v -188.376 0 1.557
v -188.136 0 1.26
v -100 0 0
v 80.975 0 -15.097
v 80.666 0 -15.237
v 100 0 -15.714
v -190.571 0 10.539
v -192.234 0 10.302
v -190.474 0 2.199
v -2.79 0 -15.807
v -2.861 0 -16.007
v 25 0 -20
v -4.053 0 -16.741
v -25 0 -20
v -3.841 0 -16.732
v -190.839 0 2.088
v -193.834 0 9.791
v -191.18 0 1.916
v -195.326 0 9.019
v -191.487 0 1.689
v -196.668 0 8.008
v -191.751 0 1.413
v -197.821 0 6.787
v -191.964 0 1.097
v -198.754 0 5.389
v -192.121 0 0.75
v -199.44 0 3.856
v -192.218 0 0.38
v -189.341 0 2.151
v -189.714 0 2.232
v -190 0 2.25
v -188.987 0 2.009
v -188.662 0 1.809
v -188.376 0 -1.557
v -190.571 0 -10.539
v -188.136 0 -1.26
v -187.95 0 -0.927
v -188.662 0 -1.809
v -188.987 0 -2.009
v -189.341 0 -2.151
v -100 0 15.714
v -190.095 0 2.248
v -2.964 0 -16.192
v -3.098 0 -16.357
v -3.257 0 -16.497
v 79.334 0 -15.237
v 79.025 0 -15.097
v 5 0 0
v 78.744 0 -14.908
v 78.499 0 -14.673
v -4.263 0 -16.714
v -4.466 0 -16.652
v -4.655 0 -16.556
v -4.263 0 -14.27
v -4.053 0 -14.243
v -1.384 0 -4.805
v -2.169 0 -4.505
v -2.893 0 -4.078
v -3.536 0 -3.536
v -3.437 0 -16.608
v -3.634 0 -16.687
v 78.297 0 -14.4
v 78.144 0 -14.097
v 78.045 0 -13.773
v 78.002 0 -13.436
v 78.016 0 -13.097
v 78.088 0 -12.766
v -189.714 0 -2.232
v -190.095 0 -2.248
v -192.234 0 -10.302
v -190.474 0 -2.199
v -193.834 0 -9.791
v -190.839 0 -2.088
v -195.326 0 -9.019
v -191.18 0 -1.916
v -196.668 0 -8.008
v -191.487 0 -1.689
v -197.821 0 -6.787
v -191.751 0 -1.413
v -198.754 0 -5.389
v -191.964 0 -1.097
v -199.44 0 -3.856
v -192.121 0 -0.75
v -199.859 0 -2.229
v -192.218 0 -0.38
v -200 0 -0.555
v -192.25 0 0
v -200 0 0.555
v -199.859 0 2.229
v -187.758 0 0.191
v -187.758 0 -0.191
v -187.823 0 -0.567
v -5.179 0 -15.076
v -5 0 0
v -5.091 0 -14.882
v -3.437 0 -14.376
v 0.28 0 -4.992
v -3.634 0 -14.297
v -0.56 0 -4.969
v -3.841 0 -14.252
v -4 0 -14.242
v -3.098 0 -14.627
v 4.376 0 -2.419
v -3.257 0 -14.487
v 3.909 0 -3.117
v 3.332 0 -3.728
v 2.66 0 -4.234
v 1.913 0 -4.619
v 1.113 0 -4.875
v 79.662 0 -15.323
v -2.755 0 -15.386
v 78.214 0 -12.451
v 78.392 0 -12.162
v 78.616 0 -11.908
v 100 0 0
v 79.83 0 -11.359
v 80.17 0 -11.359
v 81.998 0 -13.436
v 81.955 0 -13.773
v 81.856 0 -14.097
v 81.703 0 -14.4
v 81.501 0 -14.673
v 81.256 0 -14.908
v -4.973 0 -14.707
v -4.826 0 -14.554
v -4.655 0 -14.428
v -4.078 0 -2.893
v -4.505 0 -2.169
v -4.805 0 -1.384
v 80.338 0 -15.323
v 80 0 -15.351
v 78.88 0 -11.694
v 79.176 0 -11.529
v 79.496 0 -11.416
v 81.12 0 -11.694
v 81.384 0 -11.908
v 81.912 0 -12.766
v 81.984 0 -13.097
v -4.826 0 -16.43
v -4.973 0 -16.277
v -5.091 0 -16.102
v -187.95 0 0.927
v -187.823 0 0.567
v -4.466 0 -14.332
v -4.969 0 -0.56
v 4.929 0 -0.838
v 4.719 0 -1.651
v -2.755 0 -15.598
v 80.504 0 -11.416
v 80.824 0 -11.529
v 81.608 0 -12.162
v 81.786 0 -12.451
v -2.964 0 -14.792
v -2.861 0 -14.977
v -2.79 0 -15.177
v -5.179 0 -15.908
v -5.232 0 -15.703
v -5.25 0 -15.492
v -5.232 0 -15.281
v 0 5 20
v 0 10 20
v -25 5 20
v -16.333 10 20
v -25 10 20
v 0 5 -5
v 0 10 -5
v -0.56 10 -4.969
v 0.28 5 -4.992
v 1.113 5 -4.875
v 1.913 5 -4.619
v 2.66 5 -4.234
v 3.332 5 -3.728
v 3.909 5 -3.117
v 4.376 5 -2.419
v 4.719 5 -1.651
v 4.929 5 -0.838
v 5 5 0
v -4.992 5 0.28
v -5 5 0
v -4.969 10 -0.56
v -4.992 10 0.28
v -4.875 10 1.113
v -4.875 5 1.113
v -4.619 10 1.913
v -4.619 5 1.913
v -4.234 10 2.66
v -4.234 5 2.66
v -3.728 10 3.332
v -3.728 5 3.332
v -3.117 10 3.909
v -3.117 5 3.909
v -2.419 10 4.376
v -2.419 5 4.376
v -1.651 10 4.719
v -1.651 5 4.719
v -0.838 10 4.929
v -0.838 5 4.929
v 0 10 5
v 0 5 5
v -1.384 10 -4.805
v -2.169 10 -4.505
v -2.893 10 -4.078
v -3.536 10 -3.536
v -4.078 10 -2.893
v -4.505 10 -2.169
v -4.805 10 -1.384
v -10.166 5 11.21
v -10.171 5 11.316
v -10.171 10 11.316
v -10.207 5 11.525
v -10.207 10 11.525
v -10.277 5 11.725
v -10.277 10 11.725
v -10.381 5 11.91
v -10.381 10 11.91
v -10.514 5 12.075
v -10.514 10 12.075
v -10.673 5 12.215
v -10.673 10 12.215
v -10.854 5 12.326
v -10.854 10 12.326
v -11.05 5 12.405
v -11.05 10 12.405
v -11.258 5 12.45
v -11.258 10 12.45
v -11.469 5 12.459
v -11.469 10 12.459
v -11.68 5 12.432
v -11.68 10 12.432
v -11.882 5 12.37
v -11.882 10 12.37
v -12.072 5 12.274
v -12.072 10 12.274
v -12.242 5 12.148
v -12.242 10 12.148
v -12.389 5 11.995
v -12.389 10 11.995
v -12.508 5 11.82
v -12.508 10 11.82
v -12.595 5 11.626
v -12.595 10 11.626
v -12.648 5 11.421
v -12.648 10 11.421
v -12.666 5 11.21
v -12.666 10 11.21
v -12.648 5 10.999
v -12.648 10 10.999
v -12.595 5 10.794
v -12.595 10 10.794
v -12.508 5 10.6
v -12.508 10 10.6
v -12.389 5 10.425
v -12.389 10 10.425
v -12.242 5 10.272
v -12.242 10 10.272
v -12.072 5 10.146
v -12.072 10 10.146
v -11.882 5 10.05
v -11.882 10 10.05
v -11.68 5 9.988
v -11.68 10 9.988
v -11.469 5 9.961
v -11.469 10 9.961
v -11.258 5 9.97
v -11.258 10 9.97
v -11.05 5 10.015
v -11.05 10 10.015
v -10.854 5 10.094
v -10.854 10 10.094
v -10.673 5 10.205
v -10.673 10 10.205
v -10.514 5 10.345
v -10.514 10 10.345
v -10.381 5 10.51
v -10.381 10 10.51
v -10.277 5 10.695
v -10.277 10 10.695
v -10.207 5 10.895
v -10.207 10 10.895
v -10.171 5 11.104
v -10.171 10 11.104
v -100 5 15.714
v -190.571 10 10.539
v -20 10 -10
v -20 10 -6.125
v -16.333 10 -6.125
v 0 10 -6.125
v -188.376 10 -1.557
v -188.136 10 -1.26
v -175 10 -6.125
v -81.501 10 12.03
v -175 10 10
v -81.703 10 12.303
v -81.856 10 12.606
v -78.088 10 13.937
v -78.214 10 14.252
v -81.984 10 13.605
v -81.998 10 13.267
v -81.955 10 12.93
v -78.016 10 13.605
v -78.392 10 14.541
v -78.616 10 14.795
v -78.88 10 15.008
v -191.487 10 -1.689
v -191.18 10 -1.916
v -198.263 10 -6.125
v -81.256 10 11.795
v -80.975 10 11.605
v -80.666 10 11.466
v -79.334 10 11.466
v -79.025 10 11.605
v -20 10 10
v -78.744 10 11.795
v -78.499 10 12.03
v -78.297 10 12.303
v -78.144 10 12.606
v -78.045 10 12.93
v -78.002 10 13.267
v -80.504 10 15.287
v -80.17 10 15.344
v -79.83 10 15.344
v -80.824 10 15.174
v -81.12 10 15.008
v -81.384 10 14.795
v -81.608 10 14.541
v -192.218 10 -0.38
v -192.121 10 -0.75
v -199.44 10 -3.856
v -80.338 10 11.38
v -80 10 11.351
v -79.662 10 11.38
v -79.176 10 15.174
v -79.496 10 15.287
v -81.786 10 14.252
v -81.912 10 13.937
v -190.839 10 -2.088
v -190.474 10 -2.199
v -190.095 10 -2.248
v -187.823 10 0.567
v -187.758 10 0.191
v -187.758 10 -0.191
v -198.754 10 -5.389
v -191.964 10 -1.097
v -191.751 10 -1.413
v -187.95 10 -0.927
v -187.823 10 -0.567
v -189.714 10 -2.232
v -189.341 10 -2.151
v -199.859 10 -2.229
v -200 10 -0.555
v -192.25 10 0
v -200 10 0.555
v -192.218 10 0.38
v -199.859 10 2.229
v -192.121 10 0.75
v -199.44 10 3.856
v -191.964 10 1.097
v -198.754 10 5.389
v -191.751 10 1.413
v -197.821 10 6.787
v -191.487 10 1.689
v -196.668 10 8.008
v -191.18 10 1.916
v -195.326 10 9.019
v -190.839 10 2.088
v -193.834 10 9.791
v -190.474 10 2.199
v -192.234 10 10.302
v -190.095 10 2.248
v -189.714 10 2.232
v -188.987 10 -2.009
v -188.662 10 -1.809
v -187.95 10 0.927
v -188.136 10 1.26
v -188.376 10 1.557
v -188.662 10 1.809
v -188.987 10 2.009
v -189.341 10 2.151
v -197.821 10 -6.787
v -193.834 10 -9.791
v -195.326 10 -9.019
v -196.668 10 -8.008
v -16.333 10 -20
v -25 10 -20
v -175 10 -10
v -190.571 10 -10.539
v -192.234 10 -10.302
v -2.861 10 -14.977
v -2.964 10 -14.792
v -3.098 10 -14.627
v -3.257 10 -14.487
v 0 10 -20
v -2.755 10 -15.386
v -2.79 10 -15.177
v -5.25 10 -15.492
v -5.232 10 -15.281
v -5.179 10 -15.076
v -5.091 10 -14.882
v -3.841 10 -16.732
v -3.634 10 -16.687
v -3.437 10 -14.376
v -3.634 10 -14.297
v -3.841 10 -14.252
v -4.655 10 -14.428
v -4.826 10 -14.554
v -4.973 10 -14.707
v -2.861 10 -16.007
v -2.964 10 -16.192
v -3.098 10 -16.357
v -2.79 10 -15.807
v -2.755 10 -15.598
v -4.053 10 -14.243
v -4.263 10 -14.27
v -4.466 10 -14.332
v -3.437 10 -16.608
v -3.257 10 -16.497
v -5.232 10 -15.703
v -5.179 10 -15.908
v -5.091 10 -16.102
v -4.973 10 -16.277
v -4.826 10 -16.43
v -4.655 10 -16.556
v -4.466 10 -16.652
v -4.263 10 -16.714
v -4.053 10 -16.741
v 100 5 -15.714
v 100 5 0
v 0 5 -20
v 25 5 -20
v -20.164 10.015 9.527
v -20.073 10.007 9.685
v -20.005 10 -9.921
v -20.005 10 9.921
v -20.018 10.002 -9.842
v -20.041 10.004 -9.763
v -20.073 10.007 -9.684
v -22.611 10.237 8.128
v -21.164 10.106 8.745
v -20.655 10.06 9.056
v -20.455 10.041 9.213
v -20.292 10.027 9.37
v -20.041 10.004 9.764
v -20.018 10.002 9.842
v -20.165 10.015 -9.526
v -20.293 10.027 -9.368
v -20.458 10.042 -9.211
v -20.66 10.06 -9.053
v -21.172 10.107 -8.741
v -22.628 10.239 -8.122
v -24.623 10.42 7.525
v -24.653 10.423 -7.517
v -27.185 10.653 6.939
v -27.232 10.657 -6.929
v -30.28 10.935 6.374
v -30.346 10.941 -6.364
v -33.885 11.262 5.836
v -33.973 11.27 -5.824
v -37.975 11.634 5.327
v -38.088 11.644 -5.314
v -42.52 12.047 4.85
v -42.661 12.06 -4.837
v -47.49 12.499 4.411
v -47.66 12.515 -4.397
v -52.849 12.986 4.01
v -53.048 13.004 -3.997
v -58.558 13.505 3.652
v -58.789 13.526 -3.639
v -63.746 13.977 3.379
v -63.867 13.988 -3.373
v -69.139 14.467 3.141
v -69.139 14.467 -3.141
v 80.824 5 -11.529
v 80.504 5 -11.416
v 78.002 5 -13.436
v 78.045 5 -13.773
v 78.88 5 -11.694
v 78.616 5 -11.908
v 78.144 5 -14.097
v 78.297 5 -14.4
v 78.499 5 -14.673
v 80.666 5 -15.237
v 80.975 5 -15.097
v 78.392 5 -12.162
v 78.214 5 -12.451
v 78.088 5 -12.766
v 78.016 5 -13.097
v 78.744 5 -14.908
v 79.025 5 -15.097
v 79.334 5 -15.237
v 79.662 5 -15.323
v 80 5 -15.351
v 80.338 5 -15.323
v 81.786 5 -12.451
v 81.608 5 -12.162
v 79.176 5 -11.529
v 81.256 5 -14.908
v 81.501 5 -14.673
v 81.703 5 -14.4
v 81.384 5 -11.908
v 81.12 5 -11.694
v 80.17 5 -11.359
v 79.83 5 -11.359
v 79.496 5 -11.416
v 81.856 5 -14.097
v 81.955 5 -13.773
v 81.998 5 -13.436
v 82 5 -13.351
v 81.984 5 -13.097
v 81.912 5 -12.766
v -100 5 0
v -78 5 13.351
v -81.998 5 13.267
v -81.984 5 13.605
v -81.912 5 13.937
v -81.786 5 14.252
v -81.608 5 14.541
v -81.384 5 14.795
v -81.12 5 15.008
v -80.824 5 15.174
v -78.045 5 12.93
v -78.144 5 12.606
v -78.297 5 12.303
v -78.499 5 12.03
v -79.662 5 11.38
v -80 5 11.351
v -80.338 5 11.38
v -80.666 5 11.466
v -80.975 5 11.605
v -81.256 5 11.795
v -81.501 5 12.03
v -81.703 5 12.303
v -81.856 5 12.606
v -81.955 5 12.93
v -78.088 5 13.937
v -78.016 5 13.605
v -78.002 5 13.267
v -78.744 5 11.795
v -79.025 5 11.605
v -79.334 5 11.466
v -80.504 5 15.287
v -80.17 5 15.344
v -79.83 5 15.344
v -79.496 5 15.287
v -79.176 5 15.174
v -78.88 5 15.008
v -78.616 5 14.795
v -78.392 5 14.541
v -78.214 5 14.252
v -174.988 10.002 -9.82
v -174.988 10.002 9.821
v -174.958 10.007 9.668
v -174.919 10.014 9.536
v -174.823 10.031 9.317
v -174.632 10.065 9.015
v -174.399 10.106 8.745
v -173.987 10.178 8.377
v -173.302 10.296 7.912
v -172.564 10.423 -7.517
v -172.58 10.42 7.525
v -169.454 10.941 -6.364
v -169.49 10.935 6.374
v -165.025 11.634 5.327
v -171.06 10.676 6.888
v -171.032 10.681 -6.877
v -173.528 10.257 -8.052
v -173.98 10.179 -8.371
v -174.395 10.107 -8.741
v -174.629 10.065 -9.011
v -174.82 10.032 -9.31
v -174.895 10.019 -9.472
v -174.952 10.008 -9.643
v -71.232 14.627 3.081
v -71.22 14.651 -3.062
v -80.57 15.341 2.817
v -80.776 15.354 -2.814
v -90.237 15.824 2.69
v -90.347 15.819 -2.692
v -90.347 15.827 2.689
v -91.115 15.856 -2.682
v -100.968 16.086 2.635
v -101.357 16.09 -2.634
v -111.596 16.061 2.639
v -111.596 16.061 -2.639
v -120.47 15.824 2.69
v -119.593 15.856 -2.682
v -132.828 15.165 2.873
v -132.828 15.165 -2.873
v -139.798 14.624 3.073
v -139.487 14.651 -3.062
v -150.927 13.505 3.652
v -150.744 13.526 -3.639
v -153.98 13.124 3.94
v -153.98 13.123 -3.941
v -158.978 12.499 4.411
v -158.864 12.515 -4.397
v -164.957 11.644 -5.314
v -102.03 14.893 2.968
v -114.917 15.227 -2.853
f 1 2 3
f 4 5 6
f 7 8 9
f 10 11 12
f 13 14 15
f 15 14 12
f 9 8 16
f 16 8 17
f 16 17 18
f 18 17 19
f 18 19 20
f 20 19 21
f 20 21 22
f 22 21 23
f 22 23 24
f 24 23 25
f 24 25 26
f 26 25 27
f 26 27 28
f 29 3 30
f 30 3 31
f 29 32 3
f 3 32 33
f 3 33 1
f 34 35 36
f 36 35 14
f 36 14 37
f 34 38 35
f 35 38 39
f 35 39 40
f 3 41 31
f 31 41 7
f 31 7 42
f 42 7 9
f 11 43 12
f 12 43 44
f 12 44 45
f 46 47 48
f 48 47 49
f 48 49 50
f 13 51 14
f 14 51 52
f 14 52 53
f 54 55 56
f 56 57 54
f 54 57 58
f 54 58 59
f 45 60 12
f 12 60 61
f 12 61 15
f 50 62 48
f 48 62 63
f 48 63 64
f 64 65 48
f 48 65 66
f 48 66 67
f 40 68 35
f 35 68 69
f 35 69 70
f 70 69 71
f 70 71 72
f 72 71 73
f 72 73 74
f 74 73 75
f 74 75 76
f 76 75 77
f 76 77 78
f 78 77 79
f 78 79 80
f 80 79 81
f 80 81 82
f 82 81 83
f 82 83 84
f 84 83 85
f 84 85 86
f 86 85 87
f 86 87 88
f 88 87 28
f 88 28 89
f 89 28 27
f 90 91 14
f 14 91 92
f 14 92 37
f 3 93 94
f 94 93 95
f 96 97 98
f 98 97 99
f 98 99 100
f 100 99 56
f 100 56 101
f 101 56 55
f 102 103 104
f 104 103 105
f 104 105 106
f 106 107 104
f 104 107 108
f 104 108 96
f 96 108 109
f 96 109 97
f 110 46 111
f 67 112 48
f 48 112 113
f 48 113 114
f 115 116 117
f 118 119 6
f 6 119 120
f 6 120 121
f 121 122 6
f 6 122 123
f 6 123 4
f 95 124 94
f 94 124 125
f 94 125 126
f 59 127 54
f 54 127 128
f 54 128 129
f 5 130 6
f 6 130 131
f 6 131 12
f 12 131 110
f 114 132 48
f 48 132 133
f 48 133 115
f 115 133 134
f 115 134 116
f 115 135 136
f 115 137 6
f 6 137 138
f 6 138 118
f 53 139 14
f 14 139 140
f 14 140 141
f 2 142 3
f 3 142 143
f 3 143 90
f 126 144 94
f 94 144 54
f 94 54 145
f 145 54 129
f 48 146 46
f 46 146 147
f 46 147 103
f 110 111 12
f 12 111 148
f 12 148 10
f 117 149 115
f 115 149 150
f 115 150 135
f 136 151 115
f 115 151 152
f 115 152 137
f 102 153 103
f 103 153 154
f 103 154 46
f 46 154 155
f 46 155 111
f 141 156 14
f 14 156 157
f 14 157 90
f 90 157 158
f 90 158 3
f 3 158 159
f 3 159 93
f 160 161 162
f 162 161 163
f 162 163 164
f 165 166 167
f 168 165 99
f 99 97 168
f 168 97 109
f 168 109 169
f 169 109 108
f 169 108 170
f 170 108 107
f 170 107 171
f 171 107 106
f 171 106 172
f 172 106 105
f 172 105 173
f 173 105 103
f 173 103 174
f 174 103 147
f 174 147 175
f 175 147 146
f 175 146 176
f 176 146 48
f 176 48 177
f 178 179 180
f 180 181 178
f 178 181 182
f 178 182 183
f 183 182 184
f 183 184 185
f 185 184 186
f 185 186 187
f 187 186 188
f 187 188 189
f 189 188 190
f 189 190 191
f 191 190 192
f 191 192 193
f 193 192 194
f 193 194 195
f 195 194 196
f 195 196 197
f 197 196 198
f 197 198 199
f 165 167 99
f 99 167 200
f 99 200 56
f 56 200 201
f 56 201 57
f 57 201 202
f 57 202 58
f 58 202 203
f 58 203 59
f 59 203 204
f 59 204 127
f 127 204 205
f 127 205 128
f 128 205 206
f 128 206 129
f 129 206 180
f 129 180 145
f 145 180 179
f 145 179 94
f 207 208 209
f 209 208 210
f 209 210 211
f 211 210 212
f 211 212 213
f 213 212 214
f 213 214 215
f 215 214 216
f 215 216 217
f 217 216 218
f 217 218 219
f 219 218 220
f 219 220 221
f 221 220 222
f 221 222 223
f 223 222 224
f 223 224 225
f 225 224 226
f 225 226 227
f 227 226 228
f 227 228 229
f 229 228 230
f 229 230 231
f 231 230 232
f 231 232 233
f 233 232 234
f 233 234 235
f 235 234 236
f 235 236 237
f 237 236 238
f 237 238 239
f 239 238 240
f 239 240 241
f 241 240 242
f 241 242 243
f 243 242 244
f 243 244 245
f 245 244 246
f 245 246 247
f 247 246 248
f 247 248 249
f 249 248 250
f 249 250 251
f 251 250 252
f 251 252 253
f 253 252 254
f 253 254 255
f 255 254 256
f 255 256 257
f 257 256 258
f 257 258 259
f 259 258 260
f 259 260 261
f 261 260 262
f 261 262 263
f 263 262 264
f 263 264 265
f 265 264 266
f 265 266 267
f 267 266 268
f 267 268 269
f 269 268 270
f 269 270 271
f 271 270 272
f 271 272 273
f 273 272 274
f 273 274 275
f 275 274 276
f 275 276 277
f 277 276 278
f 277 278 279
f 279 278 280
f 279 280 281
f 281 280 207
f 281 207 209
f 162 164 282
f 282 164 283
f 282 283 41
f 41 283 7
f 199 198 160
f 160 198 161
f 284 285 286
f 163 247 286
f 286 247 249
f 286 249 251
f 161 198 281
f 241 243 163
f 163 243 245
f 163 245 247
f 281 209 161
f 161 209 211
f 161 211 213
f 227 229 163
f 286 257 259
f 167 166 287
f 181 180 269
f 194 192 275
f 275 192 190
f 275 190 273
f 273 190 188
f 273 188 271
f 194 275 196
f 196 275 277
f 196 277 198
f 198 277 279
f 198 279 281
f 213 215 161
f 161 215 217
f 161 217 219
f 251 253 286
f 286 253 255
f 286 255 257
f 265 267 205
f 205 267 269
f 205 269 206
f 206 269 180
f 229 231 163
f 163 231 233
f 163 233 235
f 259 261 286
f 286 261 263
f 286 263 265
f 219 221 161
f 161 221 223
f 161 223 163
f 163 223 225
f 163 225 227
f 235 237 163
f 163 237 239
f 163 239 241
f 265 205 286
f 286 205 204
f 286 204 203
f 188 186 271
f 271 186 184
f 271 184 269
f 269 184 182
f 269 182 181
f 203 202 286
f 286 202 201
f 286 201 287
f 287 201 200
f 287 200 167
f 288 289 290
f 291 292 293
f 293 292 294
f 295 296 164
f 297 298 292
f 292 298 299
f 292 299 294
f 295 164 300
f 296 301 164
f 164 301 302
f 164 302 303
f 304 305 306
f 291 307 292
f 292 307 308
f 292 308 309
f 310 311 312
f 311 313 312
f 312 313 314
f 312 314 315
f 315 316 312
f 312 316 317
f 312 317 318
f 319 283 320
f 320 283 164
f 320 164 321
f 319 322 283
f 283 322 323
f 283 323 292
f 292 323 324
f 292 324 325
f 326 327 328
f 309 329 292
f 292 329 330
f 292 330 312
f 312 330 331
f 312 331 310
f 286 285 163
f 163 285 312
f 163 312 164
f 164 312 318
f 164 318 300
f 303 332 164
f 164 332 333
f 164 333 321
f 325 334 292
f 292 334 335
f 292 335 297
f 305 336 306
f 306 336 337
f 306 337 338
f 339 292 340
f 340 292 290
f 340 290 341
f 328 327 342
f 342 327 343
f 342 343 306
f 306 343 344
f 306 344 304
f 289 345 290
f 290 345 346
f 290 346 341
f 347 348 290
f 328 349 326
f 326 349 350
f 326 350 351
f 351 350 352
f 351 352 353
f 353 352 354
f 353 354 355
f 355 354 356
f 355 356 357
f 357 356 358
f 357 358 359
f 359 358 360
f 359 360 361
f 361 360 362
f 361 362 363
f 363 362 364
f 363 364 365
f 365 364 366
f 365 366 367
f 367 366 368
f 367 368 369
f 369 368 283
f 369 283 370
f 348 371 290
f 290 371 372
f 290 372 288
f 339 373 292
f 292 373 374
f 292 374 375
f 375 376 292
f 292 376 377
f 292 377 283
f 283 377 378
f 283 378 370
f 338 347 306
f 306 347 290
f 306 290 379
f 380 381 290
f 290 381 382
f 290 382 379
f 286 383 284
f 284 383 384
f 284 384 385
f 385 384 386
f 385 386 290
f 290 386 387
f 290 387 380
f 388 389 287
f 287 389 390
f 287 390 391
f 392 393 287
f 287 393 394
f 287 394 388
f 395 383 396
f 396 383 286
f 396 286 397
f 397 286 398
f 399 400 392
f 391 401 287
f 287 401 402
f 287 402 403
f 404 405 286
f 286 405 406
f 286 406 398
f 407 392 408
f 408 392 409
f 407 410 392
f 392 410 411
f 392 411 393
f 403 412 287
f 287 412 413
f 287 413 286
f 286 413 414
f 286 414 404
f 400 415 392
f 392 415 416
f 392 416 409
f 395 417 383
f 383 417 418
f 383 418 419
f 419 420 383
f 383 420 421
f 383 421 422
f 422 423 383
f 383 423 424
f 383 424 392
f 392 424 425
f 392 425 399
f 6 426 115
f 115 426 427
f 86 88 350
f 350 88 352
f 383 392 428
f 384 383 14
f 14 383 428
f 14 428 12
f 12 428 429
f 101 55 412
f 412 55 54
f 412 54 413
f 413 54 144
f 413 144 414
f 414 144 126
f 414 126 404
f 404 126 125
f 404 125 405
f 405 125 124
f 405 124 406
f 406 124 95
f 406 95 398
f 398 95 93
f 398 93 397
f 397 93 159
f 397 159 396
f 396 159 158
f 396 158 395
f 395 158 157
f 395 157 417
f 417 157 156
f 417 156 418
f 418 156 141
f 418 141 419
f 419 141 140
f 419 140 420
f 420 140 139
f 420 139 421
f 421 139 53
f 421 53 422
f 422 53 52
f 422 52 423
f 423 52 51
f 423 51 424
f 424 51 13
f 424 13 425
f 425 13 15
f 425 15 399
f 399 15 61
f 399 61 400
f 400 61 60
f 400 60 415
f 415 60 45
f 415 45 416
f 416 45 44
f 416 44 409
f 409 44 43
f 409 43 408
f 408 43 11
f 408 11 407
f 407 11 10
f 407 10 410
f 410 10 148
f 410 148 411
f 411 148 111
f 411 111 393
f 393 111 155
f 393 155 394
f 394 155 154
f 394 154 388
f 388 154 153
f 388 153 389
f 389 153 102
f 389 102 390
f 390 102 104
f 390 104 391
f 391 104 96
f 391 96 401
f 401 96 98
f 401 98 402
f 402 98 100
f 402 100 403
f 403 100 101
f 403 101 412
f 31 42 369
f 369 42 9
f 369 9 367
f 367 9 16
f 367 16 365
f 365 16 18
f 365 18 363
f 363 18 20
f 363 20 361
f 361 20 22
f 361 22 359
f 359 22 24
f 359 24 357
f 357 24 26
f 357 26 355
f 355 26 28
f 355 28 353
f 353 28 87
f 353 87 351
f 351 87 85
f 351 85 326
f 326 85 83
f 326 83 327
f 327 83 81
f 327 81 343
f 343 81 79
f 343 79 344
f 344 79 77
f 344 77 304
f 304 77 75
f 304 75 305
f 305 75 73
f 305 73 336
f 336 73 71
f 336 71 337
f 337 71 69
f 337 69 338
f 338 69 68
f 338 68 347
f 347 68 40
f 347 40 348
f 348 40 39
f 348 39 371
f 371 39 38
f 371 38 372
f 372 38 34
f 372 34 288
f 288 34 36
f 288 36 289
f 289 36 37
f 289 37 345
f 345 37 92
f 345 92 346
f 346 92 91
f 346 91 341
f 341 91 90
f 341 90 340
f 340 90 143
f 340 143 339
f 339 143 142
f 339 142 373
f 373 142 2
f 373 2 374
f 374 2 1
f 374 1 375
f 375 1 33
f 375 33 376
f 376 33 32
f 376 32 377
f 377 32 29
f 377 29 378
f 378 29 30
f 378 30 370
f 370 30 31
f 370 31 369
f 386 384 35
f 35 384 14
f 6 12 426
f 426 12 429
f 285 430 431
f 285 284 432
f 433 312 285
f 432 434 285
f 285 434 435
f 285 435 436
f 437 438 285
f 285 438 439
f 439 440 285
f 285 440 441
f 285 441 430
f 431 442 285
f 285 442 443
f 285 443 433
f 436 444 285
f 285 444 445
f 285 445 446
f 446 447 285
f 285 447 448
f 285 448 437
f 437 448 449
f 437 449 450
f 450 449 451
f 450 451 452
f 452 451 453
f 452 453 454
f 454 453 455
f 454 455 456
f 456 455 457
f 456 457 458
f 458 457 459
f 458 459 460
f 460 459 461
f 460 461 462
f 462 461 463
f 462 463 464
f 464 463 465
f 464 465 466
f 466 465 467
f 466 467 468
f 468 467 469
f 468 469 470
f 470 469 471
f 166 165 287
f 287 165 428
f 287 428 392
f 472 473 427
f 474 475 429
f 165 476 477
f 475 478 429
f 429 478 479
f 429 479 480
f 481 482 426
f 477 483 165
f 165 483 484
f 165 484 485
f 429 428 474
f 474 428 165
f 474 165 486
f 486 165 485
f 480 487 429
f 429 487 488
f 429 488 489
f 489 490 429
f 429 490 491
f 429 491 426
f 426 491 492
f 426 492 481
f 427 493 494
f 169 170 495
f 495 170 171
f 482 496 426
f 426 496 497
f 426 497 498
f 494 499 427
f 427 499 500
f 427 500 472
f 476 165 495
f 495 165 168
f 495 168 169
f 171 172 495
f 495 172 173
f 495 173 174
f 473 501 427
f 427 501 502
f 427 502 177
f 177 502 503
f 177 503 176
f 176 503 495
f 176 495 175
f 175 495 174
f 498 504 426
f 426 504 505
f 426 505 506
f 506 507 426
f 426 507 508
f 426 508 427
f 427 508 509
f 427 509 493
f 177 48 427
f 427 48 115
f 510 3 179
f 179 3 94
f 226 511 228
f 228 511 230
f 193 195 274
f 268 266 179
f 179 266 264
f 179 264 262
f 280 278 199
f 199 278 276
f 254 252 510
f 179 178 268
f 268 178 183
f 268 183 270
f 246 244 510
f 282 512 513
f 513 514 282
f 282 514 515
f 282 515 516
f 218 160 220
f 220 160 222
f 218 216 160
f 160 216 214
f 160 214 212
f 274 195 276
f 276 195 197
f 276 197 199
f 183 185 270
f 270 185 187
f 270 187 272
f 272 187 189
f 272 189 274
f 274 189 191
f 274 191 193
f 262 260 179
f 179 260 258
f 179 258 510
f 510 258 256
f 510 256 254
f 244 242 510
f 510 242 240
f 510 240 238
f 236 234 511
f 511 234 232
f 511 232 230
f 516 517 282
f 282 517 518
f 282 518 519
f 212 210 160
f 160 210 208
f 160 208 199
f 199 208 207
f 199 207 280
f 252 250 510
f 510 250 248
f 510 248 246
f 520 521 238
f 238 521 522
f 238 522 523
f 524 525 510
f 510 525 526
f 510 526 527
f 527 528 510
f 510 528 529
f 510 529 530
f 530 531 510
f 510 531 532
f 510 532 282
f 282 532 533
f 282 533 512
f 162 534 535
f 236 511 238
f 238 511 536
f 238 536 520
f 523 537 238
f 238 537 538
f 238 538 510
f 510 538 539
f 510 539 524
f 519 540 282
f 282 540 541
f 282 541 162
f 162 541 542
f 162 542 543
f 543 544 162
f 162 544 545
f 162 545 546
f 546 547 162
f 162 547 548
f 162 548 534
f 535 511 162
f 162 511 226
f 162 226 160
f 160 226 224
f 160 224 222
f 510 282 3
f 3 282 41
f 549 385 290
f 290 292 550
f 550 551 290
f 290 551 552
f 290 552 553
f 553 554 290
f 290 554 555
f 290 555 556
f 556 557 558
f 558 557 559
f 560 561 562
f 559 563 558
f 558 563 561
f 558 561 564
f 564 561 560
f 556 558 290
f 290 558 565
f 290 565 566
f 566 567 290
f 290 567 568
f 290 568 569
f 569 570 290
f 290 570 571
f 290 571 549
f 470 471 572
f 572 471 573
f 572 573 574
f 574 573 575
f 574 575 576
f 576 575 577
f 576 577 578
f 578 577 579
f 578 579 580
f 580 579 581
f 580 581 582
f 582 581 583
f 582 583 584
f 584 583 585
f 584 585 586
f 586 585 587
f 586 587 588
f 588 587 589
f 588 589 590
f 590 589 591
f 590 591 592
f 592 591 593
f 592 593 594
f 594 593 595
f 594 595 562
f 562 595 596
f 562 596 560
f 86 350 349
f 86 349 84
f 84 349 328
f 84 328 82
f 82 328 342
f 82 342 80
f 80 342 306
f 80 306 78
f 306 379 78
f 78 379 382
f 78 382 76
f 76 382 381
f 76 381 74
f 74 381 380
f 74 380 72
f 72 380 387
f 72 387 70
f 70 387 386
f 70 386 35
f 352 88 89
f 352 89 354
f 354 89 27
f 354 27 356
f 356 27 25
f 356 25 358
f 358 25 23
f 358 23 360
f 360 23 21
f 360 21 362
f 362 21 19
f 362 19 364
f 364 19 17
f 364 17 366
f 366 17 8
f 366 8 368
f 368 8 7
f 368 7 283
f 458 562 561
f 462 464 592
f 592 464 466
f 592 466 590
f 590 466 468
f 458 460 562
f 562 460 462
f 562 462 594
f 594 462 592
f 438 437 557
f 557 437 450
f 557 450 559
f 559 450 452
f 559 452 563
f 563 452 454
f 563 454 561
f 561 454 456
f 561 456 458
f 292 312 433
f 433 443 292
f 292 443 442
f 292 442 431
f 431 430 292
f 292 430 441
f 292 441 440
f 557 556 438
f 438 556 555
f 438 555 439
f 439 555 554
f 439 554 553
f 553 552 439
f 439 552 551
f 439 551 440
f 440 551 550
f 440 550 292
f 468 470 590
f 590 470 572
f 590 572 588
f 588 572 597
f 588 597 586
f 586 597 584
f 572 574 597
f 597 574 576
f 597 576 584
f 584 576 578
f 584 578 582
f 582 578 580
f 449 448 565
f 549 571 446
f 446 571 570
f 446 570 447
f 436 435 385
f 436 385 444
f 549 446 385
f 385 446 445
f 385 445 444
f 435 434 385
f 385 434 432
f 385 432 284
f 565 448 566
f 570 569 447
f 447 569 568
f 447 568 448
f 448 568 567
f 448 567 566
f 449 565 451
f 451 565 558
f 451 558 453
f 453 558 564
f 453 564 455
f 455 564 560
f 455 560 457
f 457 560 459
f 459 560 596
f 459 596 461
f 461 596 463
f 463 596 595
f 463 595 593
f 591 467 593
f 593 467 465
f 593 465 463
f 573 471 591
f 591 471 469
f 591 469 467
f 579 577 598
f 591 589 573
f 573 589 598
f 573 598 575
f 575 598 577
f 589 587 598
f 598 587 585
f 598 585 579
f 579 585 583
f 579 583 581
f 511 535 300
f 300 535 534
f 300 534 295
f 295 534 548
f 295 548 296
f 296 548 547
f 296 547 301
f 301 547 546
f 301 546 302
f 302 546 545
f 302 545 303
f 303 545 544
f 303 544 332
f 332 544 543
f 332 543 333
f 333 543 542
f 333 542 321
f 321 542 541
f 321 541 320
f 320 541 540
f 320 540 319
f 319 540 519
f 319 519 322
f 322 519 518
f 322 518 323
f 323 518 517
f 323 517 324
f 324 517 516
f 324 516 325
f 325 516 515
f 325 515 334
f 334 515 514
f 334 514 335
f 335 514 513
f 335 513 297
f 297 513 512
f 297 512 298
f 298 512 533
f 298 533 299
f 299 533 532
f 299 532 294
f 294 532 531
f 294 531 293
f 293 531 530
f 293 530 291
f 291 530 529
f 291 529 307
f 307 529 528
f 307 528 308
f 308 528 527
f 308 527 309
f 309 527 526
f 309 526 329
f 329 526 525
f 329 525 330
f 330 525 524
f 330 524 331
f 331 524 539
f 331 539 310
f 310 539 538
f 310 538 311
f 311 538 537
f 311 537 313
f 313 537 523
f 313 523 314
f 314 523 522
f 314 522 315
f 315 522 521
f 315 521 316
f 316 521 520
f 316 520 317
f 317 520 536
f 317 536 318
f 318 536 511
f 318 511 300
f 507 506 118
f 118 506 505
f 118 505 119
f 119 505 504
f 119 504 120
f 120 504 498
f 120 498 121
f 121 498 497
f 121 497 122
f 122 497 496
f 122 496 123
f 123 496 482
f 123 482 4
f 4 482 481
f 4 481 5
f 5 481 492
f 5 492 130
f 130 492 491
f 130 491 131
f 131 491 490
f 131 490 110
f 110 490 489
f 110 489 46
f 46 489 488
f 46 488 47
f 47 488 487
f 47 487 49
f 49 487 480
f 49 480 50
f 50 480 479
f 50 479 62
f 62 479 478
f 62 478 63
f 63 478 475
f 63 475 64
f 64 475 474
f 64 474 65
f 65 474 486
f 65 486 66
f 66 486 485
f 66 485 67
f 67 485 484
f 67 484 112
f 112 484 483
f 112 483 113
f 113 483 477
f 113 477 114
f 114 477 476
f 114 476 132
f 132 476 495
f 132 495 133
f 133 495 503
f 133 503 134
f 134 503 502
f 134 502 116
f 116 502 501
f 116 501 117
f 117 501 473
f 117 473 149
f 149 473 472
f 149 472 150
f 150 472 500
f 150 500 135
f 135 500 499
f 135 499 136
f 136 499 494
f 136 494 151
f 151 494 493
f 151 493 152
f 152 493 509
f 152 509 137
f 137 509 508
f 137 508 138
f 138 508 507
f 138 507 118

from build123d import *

# Parameters (mm, degrees)
BOSS_EXTRUDE1_DEPTH  = 20
SKETCH3_R            = 1.25
SKETCH3_R_2          = 5
SKETCH3_R_3          = 2.25
CUT_EXTRUDE1_DEPTH   = 40
CUT_EXTRUDE2_DEPTH   = 40
MIRROR2_COPY_1_DEPTH = 40
BOSS_EXTRUDE3_DEPTH  = 2.5
SKETCH6_W            = 107.318523781
SKETCH6_H            = 36.59372062
CUT_EXTRUDE3_DEPTH   = 25
SKETCH7_W            = 103.85031415
SKETCH7_H            = 15.718097745
CUT_EXTRUDE4_DEPTH   = 50
SKETCH8_W            = 102.493521885
SKETCH8_H            = 23.554949116
CUT_EXTRUDE5_DEPTH   = 50
SKETCH9_W            = 100
SKETCH9_H            = 5
CUT_EXTRUDE6_DEPTH   = 50
FILLET1_R            = 400
FILLET2_R            = 10
FILLET3_START        = -2.629939755
FILLET3_DEPTH        = 5.259872573
FILLET3_START_2      = -10.0000001
FILLET3_2_DEPTH      = 20.0000001
FILLET3_START_3      = -176
FILLET3_3_DEPTH      = 156
SKETCH10_R           = 2
CUT_EXTRUDE7_DEPTH   = 10


with BuildPart() as part:
    # Sketch2 → Boss-Extrude1 (new, symmetric)
    with BuildSketch(Plane.XY):
        Polygon((0, 0), (200, 0), (200, 10), (-200, 10), (-200, 0), align=None)
    extrude(amount=BOSS_EXTRUDE1_DEPTH, both=True)

    # Sketch3 → Cut-Extrude1 (cut)
    with BuildSketch(Plane(origin=(0, 10, 0), x_dir=(1, 0, 0), z_dir=(0, 1, 0))):
        with Locations(Location((-4, 15.491933385, 0), (0, 0, 180))):
            Circle(SKETCH3_R)
        with Locations(Location((15.416407865, -4.281865077, 0), (0, 0, 180))):
            Circle(SKETCH3_R)
        with Locations(Location((-11.416407865, -11.210068308, 0), (0, 0, 180))):
            Circle(SKETCH3_R)
        with Locations(Location((0, 0, 0), (0, 0, 180))):
            Circle(SKETCH3_R_2)
        with Locations(Location((-190, 0, 0), (0, 0, 180))):
            Circle(SKETCH3_R_3)
        with Locations(Location((190, 0, 0), (0, 0, 270))):
            Circle(SKETCH3_R_3)
    extrude(amount=-CUT_EXTRUDE1_DEPTH, mode=Mode.SUBTRACT)

    # Sketch4 → Cut-Extrude2 (cut)
    with BuildSketch(Plane(origin=(0, 10, 0), x_dir=(1, 0, 0), z_dir=(0, 1, 0))):
        Polygon((-205.682411406, 30.266574236), (-25, 30.266574236), (-25, 20), (-200, 10), (-205.682411406, 10), align=None)
    cut_extrude2 = extrude(amount=-CUT_EXTRUDE2_DEPTH, mode=Mode.SUBTRACT)

    # Mirror1: Cut-Extrude2 across plane
    add(cut_extrude2.mirror(Plane(origin=(0, 0, 0), x_dir=(0, 0, 1), z_dir=(1, 0, 0))), mode=Mode.SUBTRACT)

    # Mirror2: Cut-Extrude2 across plane
    add(cut_extrude2.mirror(Plane.XY), mode=Mode.SUBTRACT)

    # Mirror2 copy 1 sketch → Mirror2 copy 1 (cut)
    with BuildSketch(Plane(origin=(0, 10, 0), x_dir=(-1, 0, 0), z_dir=(0, 1, 0))):
        Polygon((-205.682411406, 30.266574236), (-25, 30.266574236), (-25, 20), (-200, 10), (-205.682411406, 10), align=None)
    extrude(amount=-MIRROR2_COPY_1_DEPTH, mode=Mode.SUBTRACT)

    # Sketch5 → Boss-Extrude3 (add, symmetric)
    with BuildSketch(Plane.XY):
        Polygon((-175, 10), (-20, 10), (-130, 20), align=None)
    boss_extrude3 = extrude(amount=BOSS_EXTRUDE3_DEPTH, both=True)

    # Mirror3: Boss-Extrude3 across plane
    add(boss_extrude3.mirror(Plane(origin=(0, 0, 0), x_dir=(0, 0, 1), z_dir=(1, 0, 0))))

    # Sketch6 → Cut-Extrude3 (cut, symmetric)
    with BuildSketch(Plane.XY):
        with Locations((153.659261891, 18.29686031)):
            Rectangle(SKETCH6_W, SKETCH6_H)
    extrude(amount=CUT_EXTRUDE3_DEPTH, both=True, mode=Mode.SUBTRACT)

    # Sketch7 → Cut-Extrude4 (cut)
    with BuildSketch(Plane.XY):
        with Locations((51.925157075, 12.859048873)):
            Rectangle(SKETCH7_W, SKETCH7_H)
    extrude(amount=-CUT_EXTRUDE4_DEPTH, mode=Mode.SUBTRACT)

    # Sketch8 → Cut-Extrude5 (cut)
    with BuildSketch(Plane.XY):
        with Locations((51.246760943, 11.777474558)):
            Rectangle(SKETCH8_W, SKETCH8_H)
    extrude(amount=CUT_EXTRUDE5_DEPTH, mode=Mode.SUBTRACT)

    # Sketch9 → Cut-Extrude6 (cut)
    with BuildSketch(Plane.XY):
        with Locations((-50, 2.5)):
            Rectangle(SKETCH9_W, SKETCH9_H)
    extrude(amount=CUT_EXTRUDE6_DEPTH, mode=Mode.SUBTRACT)

    # Fillet1
    # the kernel refuses this fillet: 400 mm, written as the material it takes off along each edge
    with BuildSketch(Plane(origin=(-130, 20, 155.27904863), x_dir=(-0.9761870601839527, -0.21693045781865625, 0), z_dir=(0, 0, -1))) as fillet1_piece_1:
        with BuildLine():
            CenterArc((63.556611275, -399.618802355), FILLET1_R, 92.501596354, 15.221640262)
            Line((-58.21114592, -18.603562098), (-60.646501064, -10.983257293))
            Line((-60.646501064, -10.983257293), (-2.435355144, 7.620304805))
            Line((-2.435355144, 7.620304805), (0, 8))
            ThreePointArc((0, 8), (23.048861143, 8), (45.748544507, 7.992376047))
            Line((45.748544507, 7.992376047), (46.097722286, 0))
        make_face()
    extrude(amount=310.558097261, mode=Mode.SUBTRACT)

    # Fillet2
    fillet2_edges = [part.edges().sort_by_distance(p)[0] for p in [
        (-200, 5, -10),
        (-200, 5, 10),
    ]]
    fillet(fillet2_edges, radius=FILLET2_R)

    # Fillet3: read off the stored shape, not the designer's step
    # Fillet3 outline → Fillet3 (add)
    with BuildSketch(Plane.XY.offset(FILLET3_START)):
        with BuildLine():
            Line((-20, 10), (-69.139353351, 14.467213941))
            ThreePointArc((-69.139353351, 14.467213941), (-122.218339331, 15.75425111), (-175.000186885, 9.999966956))
            Line((-175.000186885, 9.999966956), (-20, 10))
        make_face()
    extrude(amount=FILLET3_DEPTH)

    # Fillet3 2 outline → Fillet3 2 (add)
    with BuildSketch(Plane.XY.offset(FILLET3_START_2)):
        with BuildLine():
            Line((-20, 10), (-69.139353351, 14.467213941))
            ThreePointArc((-69.139353351, 14.467213941), (-122.218339331, 15.75425111), (-175.000186885, 9.999966956))
            Line((-175.000186885, 9.999966956), (-20, 10))
        make_face()
    extrude(amount=FILLET3_2_DEPTH)

    # Fillet3 3 outline → Fillet3 3 (cut)
    with BuildSketch(Plane.YZ.offset(FILLET3_START_3)):
        with BuildLine():
            ThreePointArc((10, 10), (11.726129638, 5.213307923), (16.109978945, 2.629936129))
            Line((16.109978945, 2.629936129), (18, 2.273471232))
            Line((18, 2.273471232), (18, 10))
            Line((18, 10), (10, 10))
        make_face()
        with BuildLine():
            Line((18, -10.0000001), (18, -2.273470992))
            Line((18, -2.273470992), (16.109978046, -2.629936298))
            ThreePointArc((16.109978046, -2.629936298), (11.726129346, -5.213308275), (10, -10))
            Line((10, -10), (18, -10.0000001))
        make_face()
    extrude(amount=FILLET3_3_DEPTH, mode=Mode.SUBTRACT)

    # Sketch10 → Cut-Extrude7 (cut)
    with BuildSketch(Plane.XZ):
        with Locations(Location((-80, 13.351433229, 0), (0, 0, 270))):
            Circle(SKETCH10_R)
        with Locations(Location((80, -13.351433229, 0), (0, 0, 270))):
            Circle(SKETCH10_R)
    extrude(amount=-CUT_EXTRUDE7_DEPTH, mode=Mode.SUBTRACT)


solid = part.part
